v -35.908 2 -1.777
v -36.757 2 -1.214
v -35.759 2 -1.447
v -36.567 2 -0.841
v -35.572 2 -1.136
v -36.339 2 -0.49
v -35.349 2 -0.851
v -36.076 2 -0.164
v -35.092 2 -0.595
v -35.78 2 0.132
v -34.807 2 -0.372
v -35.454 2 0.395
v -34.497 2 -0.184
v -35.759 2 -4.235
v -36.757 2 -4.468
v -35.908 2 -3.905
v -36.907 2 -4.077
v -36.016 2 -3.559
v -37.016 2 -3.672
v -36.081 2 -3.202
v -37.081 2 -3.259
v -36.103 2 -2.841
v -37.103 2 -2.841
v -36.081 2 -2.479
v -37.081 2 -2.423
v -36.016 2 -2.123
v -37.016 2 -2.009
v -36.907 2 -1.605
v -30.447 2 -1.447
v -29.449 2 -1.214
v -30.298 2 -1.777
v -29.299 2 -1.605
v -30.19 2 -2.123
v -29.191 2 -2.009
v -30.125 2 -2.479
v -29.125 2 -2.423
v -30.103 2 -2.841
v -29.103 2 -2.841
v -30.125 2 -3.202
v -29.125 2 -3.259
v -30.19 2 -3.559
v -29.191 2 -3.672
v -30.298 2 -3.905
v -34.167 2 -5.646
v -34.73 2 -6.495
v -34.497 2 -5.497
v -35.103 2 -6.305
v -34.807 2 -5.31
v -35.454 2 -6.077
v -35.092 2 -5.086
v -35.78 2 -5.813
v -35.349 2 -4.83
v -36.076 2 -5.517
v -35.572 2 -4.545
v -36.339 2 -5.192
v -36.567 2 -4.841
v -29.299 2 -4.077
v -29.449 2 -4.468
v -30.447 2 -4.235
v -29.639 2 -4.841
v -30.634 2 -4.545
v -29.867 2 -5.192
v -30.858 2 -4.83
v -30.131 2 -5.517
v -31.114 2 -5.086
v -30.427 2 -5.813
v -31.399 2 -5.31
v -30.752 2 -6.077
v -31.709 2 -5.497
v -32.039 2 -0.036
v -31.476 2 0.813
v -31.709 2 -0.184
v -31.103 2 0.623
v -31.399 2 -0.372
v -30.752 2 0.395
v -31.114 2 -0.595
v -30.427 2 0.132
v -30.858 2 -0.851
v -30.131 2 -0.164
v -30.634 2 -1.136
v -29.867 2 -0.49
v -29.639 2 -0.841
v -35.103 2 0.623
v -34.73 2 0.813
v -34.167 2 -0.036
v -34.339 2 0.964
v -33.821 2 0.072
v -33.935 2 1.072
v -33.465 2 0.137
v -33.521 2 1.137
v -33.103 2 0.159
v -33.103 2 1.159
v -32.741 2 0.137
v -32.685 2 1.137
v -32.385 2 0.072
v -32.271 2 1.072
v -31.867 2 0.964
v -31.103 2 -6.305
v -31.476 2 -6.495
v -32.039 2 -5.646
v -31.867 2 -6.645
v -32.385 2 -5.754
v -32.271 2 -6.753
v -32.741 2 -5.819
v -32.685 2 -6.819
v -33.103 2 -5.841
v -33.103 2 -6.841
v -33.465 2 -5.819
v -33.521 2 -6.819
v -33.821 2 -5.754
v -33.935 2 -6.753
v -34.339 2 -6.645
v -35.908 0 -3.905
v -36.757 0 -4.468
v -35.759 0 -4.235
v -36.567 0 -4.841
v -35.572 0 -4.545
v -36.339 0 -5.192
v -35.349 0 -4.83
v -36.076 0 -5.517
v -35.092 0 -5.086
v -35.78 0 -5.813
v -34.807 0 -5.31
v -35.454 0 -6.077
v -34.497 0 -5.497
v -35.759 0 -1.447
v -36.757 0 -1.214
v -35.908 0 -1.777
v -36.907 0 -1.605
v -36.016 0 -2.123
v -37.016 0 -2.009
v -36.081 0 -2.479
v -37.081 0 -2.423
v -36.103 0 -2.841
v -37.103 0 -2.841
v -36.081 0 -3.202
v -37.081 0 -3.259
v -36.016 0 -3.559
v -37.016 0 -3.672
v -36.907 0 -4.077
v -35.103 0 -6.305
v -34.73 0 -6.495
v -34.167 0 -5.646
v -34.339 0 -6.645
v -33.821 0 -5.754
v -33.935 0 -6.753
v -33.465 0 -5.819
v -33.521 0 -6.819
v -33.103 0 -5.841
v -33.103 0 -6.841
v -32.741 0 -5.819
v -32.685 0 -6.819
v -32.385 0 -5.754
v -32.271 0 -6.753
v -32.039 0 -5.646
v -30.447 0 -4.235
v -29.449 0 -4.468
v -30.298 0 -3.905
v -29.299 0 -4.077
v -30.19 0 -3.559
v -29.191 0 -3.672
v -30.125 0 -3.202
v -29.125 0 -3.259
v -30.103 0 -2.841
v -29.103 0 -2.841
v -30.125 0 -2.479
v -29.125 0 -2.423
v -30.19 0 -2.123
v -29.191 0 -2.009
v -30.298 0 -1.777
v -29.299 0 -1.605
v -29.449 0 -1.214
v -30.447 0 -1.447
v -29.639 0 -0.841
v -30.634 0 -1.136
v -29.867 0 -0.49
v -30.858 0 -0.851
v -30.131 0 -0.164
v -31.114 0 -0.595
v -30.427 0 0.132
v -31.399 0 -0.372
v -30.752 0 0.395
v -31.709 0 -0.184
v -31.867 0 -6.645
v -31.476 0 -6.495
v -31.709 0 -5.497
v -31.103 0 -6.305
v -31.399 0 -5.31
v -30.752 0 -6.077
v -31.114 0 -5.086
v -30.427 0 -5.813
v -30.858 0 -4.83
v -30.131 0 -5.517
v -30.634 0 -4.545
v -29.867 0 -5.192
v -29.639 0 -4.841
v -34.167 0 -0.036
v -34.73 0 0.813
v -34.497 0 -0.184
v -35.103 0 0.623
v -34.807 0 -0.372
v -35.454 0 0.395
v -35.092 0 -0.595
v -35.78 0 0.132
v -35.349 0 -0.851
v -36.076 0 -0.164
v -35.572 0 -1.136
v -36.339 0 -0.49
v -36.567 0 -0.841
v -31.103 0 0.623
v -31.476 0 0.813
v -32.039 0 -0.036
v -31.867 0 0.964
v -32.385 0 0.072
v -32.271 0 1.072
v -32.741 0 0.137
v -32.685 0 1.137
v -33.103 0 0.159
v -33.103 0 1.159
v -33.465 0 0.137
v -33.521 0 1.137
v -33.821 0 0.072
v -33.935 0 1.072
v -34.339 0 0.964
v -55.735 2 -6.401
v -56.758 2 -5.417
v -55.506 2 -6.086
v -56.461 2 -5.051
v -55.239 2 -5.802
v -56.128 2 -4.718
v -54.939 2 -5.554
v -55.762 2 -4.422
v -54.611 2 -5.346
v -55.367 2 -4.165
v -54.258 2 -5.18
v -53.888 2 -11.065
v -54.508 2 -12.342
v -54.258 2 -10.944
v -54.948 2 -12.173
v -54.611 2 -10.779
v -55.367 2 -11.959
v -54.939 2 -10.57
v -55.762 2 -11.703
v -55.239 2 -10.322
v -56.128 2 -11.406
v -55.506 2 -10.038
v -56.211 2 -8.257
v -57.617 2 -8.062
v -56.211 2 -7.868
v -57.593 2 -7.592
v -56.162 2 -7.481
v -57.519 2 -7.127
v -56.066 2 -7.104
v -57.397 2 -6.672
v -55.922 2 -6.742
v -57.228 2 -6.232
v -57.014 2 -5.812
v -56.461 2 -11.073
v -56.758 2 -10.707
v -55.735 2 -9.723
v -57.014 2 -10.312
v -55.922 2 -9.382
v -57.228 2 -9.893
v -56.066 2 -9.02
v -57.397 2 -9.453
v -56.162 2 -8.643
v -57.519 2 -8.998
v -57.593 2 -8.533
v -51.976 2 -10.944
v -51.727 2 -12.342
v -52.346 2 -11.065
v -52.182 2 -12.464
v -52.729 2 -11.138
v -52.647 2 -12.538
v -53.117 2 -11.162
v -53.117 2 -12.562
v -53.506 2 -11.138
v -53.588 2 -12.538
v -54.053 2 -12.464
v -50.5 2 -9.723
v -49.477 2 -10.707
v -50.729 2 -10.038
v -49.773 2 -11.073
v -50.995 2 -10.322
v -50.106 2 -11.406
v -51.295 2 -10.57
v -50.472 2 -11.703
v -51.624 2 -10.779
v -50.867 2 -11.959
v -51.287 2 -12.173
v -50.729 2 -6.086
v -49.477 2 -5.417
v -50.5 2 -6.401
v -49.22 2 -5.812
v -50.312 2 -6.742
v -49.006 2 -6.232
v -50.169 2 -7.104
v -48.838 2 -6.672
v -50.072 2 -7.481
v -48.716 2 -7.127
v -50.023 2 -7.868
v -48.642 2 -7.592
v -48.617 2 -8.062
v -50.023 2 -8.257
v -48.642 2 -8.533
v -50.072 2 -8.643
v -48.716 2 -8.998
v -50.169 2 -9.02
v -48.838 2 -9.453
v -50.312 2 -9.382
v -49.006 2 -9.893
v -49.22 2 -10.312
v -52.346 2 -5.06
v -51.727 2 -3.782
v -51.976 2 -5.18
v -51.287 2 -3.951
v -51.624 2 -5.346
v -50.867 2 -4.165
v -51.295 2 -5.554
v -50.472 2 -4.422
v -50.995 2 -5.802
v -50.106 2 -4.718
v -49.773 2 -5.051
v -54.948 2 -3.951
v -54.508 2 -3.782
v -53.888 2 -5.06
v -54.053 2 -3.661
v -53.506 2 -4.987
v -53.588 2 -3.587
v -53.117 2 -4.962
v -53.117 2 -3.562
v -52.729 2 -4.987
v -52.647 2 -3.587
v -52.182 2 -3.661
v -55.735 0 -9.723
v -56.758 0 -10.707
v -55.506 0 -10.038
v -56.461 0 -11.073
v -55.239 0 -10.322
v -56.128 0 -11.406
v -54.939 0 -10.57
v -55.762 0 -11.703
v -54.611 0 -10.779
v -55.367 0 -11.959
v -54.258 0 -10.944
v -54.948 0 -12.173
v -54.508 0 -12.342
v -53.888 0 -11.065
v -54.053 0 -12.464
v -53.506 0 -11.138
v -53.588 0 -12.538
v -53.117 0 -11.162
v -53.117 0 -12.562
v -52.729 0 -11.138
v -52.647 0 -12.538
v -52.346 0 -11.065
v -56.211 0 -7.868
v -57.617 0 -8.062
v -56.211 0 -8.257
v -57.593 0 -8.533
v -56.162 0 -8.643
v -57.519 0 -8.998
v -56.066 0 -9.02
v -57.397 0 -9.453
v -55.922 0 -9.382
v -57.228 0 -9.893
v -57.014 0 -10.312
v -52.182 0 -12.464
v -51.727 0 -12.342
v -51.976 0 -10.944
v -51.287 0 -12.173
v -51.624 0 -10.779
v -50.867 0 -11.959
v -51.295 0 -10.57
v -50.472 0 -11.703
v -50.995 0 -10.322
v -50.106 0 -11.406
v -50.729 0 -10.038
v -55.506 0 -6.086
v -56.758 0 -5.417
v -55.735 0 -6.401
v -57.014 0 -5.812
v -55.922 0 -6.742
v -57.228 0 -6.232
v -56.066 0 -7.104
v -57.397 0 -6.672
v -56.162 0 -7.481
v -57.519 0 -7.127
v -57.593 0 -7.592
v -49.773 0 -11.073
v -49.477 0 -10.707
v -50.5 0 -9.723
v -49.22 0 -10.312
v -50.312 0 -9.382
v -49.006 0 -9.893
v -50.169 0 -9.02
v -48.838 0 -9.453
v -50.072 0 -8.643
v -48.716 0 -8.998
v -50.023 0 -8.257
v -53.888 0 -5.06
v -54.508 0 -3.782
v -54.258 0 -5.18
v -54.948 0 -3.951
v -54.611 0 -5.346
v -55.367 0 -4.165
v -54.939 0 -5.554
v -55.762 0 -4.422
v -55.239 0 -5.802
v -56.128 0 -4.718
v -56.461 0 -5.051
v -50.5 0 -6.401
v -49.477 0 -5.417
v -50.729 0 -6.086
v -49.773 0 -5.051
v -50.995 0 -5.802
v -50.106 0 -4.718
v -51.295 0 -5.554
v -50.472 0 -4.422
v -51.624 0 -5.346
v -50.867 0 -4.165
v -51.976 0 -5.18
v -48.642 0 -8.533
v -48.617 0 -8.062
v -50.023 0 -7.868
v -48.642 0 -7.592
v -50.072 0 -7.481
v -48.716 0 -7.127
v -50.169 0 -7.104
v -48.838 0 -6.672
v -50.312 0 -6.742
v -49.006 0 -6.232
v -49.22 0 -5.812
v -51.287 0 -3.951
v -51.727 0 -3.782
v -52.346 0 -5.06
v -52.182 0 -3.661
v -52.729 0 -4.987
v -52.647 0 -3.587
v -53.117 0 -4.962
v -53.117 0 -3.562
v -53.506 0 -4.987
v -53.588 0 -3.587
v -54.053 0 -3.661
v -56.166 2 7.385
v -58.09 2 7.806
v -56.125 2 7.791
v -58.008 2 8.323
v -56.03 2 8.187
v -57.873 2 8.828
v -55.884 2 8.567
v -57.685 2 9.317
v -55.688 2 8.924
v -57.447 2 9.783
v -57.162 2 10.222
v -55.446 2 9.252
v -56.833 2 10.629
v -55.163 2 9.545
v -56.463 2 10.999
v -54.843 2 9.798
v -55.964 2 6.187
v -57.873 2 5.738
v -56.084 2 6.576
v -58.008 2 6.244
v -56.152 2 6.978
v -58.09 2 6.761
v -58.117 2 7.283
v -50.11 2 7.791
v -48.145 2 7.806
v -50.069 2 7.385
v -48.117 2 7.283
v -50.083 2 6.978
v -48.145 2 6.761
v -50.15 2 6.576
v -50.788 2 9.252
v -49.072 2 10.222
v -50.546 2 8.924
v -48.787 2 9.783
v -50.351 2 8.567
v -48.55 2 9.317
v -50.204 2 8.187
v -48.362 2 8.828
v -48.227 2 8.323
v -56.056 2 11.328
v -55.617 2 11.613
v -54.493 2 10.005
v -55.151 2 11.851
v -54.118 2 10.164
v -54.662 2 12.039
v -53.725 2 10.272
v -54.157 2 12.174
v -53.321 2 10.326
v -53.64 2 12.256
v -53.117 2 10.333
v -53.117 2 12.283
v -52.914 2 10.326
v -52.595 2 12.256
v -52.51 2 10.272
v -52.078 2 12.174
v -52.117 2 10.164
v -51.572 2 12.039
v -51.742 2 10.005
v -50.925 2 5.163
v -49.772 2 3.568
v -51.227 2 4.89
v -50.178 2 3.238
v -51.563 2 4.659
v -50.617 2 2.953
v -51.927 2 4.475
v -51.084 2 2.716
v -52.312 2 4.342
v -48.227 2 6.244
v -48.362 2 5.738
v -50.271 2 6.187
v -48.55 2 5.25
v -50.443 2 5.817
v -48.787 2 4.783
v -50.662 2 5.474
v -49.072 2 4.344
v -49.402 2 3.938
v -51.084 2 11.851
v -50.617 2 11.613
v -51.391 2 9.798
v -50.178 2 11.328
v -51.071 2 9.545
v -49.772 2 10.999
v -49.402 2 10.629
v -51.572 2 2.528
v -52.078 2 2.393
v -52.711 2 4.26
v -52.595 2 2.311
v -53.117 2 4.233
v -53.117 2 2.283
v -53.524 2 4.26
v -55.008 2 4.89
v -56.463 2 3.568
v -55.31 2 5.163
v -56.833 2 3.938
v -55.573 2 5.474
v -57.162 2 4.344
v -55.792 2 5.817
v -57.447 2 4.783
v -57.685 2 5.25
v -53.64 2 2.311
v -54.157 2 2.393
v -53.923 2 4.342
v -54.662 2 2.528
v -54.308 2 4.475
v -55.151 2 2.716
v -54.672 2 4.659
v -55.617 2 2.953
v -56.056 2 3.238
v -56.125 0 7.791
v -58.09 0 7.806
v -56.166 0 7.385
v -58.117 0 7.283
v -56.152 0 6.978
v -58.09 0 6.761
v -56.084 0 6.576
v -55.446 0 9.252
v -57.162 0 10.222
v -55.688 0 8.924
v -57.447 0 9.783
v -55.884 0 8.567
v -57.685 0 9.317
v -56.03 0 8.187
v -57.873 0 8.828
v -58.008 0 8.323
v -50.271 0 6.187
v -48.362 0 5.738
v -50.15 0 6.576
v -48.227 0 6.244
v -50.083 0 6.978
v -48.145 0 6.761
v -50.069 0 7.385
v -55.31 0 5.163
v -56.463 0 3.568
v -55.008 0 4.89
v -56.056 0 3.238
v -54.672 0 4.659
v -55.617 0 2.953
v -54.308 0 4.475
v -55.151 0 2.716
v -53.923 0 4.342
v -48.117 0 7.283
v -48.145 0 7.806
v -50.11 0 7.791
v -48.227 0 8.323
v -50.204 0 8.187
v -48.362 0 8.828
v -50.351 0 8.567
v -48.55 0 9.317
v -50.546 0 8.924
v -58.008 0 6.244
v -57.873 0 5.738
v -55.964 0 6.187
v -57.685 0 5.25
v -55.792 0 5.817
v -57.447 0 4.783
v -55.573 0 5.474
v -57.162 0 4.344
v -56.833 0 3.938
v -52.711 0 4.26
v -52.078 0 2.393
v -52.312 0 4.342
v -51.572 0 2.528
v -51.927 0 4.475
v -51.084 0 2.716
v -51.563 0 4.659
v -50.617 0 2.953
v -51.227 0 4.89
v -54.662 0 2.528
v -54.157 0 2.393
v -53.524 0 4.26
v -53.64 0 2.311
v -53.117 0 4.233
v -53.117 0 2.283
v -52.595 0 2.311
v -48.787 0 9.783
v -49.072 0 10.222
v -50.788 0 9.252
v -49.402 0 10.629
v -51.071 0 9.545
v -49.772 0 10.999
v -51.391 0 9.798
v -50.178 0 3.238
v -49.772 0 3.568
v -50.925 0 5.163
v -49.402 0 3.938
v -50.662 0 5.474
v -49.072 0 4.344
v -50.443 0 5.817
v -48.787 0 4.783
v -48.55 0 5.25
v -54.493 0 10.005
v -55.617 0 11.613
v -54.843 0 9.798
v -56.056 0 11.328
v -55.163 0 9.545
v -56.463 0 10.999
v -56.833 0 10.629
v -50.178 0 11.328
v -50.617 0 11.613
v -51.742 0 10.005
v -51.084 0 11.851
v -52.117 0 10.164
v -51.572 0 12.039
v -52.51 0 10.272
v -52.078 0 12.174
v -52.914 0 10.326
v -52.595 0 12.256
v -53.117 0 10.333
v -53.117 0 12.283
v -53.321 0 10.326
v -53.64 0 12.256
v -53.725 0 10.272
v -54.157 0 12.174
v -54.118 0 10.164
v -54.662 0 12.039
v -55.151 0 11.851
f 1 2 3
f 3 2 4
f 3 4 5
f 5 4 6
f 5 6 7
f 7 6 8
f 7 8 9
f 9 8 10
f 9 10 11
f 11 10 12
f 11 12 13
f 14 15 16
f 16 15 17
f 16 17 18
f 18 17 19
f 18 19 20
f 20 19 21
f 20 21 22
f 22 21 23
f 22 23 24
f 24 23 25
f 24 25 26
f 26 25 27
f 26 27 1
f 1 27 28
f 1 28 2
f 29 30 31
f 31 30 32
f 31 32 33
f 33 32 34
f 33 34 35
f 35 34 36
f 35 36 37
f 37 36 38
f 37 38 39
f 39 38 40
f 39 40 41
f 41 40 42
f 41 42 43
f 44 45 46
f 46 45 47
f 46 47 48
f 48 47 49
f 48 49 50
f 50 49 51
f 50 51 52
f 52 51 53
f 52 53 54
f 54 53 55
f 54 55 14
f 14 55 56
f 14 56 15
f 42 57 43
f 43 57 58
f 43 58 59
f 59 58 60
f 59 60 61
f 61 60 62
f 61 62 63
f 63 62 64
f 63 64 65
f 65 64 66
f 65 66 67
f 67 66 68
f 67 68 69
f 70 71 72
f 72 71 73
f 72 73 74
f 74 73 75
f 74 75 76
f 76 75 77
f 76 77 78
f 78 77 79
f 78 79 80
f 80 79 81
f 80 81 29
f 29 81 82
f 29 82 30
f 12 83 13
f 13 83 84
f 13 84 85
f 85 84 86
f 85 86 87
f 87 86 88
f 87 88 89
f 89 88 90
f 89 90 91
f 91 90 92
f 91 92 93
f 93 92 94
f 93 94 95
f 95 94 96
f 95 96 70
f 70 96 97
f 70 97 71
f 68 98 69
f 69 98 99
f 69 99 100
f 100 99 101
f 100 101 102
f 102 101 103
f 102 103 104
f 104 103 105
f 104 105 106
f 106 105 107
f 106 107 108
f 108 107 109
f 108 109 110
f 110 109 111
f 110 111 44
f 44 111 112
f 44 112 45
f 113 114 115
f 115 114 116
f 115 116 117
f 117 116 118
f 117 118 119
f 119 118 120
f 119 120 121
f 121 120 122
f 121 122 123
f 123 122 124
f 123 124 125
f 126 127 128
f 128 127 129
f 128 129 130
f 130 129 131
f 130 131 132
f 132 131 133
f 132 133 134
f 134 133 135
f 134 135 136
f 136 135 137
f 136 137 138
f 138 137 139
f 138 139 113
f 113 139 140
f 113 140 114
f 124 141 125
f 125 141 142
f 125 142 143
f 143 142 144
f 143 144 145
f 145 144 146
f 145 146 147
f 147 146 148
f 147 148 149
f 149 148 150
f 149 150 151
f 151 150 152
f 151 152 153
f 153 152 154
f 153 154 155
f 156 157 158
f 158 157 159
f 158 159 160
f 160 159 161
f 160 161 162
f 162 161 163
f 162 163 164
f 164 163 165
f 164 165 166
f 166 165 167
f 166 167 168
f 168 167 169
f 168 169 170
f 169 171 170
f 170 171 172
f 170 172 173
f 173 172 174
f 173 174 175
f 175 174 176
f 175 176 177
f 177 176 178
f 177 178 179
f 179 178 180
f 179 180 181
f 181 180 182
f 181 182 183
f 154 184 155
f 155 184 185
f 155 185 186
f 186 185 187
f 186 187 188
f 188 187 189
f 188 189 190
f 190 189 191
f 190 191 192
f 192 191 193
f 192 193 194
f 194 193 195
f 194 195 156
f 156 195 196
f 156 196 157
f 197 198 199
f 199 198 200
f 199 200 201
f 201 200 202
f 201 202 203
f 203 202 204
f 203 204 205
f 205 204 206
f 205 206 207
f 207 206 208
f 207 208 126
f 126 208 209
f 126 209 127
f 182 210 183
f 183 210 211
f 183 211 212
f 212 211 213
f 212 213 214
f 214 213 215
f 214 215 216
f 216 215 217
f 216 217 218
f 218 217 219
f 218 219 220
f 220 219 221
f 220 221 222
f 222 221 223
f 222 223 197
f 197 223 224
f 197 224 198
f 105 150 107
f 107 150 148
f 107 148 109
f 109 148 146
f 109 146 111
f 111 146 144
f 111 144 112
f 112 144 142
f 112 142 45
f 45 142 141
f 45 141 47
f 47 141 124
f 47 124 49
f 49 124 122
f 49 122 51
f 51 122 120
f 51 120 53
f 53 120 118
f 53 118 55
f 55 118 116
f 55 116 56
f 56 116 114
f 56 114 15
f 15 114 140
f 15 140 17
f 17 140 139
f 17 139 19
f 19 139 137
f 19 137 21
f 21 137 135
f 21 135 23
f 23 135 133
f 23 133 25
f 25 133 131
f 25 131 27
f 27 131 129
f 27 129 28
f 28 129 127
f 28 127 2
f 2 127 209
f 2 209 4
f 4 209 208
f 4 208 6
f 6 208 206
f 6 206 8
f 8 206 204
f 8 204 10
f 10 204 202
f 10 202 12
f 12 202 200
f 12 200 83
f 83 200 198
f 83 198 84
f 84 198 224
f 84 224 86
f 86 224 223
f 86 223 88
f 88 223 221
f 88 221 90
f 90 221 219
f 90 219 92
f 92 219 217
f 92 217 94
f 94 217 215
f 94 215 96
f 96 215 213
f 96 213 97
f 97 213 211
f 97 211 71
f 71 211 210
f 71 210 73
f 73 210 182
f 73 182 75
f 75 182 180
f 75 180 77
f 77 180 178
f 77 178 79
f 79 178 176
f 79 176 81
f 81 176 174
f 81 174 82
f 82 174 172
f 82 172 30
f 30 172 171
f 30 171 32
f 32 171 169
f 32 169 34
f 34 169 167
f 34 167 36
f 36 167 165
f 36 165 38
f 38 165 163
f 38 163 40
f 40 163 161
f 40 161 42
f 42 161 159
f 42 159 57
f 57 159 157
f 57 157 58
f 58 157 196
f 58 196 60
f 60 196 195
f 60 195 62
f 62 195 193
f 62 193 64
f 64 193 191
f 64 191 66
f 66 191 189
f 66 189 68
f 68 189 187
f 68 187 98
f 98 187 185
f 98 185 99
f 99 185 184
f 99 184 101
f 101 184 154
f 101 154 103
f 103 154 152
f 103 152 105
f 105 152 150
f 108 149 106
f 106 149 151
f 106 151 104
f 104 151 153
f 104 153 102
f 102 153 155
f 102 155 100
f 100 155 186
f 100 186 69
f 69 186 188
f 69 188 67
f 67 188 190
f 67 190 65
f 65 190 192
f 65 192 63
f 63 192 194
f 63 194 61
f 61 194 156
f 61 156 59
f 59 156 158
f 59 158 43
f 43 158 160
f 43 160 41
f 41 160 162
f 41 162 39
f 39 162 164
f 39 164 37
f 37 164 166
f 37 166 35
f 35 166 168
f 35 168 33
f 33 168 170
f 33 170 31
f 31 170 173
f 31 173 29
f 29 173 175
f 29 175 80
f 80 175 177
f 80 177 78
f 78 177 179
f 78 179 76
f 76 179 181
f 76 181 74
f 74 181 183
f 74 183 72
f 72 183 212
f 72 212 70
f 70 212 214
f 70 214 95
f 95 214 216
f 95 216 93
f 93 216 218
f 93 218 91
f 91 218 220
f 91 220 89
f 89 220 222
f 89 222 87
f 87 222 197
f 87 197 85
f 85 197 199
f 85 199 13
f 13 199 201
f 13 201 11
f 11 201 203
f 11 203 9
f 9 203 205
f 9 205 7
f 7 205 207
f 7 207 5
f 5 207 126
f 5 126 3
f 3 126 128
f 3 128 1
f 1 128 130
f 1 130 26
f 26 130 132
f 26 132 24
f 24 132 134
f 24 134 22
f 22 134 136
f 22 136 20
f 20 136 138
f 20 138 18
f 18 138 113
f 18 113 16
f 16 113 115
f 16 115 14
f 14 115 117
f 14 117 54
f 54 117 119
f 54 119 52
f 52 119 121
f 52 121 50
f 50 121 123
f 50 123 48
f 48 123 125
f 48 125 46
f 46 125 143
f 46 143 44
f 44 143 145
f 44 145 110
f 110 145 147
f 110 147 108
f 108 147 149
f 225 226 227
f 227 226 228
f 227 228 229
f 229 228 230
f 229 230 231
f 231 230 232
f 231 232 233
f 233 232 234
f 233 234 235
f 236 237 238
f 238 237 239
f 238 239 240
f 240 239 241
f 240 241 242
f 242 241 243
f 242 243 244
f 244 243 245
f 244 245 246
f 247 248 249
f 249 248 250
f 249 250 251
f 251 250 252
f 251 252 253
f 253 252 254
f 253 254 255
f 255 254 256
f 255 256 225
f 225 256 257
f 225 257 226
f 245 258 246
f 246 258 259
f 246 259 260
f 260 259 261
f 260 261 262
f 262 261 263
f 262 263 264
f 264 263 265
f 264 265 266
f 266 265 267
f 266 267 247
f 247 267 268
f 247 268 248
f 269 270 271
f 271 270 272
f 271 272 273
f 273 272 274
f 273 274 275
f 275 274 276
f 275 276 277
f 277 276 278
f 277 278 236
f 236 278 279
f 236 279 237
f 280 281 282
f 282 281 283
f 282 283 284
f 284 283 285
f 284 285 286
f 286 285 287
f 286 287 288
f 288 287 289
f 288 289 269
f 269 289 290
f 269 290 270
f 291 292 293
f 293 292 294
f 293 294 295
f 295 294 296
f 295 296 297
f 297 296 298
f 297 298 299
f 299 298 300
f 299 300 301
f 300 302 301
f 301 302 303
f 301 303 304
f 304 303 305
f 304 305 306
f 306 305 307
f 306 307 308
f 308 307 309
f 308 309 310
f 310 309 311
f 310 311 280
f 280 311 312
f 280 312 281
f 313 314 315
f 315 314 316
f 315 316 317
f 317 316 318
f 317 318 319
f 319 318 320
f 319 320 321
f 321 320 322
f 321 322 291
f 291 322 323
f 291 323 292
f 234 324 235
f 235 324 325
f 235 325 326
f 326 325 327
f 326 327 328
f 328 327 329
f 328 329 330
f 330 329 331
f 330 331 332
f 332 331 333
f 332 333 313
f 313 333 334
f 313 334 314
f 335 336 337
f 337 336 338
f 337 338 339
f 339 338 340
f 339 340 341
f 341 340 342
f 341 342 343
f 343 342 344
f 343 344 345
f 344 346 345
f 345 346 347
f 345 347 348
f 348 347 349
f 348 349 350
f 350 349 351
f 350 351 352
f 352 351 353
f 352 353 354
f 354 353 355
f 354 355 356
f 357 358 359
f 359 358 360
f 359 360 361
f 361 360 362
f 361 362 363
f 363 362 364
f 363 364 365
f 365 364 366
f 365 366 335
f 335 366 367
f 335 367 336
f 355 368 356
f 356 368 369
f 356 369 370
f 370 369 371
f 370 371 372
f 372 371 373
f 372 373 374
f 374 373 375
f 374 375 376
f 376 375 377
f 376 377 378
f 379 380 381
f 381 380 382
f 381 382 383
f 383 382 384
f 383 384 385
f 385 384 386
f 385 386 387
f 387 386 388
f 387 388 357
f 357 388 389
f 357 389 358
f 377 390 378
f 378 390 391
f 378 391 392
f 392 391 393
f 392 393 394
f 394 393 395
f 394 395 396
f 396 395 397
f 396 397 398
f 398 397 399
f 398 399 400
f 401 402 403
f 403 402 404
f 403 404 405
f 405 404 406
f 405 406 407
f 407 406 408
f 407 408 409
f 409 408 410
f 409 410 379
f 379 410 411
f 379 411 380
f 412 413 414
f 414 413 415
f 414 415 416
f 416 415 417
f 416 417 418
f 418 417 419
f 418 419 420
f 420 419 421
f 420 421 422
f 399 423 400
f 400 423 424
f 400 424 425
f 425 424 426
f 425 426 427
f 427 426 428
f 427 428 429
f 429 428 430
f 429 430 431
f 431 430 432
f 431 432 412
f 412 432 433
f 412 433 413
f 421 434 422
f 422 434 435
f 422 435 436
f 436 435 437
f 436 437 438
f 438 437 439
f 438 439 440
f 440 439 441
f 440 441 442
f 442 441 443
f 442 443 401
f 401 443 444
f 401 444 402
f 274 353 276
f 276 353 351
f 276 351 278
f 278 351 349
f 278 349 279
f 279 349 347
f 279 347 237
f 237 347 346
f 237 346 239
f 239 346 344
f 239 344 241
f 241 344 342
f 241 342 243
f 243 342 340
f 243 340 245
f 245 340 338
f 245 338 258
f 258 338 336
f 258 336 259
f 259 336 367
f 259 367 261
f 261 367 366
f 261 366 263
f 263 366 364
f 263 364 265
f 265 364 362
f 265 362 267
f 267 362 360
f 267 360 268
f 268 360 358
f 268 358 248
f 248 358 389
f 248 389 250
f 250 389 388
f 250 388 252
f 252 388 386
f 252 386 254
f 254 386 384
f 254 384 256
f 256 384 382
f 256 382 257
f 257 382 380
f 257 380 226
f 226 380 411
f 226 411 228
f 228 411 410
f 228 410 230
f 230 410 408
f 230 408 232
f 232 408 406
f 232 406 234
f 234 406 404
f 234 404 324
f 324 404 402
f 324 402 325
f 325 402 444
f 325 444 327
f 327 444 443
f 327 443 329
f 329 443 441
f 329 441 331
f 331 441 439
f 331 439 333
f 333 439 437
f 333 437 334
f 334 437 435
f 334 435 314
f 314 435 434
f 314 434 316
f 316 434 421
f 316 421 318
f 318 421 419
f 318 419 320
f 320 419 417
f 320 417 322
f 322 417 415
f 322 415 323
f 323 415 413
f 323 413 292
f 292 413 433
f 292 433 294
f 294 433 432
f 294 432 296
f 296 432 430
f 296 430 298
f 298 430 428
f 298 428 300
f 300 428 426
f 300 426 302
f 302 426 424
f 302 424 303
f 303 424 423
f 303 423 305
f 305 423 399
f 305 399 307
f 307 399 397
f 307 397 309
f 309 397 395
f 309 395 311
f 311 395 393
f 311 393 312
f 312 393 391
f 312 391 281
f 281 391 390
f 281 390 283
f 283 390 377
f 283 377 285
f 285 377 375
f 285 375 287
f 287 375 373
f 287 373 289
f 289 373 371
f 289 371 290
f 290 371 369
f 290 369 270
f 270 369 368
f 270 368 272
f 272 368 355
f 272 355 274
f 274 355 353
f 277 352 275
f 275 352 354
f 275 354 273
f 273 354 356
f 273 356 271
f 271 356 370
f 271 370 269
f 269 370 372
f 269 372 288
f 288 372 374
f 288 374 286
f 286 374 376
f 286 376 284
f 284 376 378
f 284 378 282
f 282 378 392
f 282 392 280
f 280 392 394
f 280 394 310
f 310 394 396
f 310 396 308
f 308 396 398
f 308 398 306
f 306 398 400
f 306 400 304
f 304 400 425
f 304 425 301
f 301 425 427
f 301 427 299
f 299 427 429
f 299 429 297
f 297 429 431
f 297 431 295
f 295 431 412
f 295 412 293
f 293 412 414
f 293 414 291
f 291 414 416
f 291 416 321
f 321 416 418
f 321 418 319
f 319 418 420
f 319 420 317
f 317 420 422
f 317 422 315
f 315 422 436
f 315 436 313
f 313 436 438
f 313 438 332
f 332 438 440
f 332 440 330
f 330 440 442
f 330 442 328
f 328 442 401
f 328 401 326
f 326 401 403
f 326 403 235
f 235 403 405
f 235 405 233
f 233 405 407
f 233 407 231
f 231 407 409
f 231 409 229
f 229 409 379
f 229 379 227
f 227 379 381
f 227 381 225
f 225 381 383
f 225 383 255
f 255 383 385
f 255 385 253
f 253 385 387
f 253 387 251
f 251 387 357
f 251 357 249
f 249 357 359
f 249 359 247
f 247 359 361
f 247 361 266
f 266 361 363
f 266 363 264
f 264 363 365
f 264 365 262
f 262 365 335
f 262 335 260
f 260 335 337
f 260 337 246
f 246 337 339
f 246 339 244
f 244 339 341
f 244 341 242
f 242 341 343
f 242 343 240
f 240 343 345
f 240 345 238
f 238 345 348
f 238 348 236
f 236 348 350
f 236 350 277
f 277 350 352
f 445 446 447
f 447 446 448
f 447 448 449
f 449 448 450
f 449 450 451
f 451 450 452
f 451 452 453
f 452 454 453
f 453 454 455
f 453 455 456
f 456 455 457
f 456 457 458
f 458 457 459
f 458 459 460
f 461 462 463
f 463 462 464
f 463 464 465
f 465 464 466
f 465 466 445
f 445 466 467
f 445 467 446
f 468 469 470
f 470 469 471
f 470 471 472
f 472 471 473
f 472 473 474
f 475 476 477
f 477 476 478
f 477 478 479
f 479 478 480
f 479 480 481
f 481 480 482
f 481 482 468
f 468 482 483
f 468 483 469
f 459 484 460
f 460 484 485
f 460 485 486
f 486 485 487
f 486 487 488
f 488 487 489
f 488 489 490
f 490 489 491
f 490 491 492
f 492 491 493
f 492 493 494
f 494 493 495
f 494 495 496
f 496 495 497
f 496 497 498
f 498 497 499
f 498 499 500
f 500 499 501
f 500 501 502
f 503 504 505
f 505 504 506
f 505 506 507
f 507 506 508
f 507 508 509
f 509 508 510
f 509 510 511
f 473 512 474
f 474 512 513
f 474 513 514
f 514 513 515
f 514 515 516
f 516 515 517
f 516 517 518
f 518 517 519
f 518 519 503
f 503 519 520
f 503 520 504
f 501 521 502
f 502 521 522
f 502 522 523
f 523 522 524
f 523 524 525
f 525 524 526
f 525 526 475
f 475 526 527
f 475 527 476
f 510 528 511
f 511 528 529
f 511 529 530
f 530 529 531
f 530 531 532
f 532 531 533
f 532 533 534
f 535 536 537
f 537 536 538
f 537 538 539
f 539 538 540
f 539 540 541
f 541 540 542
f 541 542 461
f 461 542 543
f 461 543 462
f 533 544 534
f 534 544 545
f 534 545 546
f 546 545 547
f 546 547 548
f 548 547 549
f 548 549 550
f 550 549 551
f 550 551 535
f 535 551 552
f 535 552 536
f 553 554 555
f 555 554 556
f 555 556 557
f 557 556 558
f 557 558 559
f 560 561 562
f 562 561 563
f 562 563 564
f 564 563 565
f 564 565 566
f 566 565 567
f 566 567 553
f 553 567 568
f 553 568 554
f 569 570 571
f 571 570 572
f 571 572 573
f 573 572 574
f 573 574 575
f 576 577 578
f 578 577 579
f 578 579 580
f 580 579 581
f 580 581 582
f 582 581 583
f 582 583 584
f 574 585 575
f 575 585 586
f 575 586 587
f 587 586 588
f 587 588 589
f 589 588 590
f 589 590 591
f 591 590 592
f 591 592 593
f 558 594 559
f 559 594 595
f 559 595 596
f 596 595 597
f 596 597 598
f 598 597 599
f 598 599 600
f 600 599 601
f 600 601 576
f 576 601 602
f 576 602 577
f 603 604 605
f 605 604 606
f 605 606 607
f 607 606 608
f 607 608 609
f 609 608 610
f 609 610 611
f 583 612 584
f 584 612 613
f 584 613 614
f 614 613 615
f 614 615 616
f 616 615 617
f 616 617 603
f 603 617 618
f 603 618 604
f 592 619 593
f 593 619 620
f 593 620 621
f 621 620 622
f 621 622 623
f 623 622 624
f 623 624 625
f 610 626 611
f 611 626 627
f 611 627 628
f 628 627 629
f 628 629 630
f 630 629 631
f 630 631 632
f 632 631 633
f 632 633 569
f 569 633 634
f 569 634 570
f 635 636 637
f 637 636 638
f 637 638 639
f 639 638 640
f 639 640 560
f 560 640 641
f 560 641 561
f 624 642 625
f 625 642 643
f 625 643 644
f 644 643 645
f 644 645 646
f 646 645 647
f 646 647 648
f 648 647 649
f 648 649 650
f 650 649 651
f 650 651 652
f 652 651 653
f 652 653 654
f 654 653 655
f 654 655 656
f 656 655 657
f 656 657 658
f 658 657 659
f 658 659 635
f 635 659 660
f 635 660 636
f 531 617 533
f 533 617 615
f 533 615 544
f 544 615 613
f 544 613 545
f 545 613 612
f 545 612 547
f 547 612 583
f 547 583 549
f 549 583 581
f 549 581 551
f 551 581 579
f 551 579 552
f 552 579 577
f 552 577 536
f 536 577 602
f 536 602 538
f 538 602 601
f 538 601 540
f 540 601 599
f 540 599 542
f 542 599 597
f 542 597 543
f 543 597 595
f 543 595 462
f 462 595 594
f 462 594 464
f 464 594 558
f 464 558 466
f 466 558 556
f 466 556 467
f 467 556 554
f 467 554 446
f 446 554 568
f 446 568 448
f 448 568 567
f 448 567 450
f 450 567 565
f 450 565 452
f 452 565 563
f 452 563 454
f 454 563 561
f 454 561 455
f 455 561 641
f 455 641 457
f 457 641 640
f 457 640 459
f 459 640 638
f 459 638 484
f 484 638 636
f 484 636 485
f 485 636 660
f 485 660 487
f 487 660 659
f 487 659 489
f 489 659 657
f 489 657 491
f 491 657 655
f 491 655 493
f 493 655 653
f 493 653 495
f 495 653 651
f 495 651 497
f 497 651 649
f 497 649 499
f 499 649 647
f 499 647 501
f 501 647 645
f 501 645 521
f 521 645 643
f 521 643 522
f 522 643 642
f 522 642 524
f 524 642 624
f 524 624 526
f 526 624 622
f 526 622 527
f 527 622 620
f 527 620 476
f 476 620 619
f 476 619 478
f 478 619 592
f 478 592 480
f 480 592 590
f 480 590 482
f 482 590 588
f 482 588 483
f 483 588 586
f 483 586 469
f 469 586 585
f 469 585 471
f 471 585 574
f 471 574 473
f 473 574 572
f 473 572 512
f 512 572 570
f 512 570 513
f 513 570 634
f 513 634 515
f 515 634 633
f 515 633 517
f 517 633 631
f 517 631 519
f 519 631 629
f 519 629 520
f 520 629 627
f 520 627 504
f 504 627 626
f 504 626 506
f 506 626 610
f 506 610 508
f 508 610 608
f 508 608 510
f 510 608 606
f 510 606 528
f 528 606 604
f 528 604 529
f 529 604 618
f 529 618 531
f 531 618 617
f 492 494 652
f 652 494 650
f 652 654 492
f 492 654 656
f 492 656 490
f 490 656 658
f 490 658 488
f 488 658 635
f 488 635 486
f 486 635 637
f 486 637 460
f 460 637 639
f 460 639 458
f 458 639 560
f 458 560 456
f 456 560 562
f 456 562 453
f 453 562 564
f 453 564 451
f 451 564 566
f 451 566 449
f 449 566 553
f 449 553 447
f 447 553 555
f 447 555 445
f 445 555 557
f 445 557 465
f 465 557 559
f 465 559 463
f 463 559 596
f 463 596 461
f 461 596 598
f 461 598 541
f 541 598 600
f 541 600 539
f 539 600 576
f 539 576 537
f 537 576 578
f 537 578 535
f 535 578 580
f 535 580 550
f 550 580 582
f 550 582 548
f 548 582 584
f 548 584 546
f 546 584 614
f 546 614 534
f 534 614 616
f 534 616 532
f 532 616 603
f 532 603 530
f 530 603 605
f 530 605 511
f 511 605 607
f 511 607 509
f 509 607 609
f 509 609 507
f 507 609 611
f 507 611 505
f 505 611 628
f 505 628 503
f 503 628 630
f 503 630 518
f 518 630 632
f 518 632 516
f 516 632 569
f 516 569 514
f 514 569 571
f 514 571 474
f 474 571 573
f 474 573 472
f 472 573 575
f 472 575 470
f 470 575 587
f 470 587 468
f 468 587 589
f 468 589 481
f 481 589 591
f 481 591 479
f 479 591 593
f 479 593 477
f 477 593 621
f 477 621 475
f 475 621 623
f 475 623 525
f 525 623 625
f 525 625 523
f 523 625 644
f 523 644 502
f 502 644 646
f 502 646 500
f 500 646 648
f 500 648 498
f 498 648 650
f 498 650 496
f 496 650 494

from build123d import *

# Parameters (mm, degrees)
SKETCH_1_R        = 4
SKETCH_1_R_2      = 3
EXTRUDE_1_DEPTH   = 2
SKETCH_1_R_3      = 4.5
SKETCH_1_R_4      = 3.1
EXTRUDE_1_2_DEPTH = 2
SKETCH_1_R_5      = 5
SKETCH_1_R_6      = 3.05
EXTRUDE_1_3_DEPTH = 2


with BuildPart() as part:
    # 草图1 → 凸台-拉伸1 (new body)
    with BuildSketch(Plane(origin=(0, 0, 0), x_dir=(1, 0, 0), z_dir=(0, 1, 0))):
        with Locations((-33.103091259, 2.840690579)):
            Circle(SKETCH_1_R)
        with Locations((-33.103091259, 2.840690579)):
            Circle(SKETCH_1_R_2, mode=Mode.SUBTRACT)
    extrude(amount=EXTRUDE_1_DEPTH)


with BuildPart() as body_2:
    # 草图1 → Extrude 1 2 (new body)
    with BuildSketch(Plane(origin=(0, 0, 0), x_dir=(1, 0, 0), z_dir=(0, 1, 0))):
        with Locations((-53.117309994, 8.062192842)):
            Circle(SKETCH_1_R_3)
        with Locations((-53.117309994, 8.062192842)):
            Circle(SKETCH_1_R_4, mode=Mode.SUBTRACT)
    extrude(amount=EXTRUDE_1_2_DEPTH)


with BuildPart() as body_3:
    # 草图1 → Extrude 1 3 (new body)
    with BuildSketch(Plane(origin=(0, 0, 0), x_dir=(1, 0, 0), z_dir=(0, 1, 0))):
        with Locations((-53.117309994, -7.283243837)):
            Circle(SKETCH_1_R_5)
        with Locations((-53.117309994, -7.283243837)):
            Circle(SKETCH_1_R_6, mode=Mode.SUBTRACT)
    extrude(amount=EXTRUDE_1_3_DEPTH)


solid = Compound([part.part, body_2.part, body_3.part])
